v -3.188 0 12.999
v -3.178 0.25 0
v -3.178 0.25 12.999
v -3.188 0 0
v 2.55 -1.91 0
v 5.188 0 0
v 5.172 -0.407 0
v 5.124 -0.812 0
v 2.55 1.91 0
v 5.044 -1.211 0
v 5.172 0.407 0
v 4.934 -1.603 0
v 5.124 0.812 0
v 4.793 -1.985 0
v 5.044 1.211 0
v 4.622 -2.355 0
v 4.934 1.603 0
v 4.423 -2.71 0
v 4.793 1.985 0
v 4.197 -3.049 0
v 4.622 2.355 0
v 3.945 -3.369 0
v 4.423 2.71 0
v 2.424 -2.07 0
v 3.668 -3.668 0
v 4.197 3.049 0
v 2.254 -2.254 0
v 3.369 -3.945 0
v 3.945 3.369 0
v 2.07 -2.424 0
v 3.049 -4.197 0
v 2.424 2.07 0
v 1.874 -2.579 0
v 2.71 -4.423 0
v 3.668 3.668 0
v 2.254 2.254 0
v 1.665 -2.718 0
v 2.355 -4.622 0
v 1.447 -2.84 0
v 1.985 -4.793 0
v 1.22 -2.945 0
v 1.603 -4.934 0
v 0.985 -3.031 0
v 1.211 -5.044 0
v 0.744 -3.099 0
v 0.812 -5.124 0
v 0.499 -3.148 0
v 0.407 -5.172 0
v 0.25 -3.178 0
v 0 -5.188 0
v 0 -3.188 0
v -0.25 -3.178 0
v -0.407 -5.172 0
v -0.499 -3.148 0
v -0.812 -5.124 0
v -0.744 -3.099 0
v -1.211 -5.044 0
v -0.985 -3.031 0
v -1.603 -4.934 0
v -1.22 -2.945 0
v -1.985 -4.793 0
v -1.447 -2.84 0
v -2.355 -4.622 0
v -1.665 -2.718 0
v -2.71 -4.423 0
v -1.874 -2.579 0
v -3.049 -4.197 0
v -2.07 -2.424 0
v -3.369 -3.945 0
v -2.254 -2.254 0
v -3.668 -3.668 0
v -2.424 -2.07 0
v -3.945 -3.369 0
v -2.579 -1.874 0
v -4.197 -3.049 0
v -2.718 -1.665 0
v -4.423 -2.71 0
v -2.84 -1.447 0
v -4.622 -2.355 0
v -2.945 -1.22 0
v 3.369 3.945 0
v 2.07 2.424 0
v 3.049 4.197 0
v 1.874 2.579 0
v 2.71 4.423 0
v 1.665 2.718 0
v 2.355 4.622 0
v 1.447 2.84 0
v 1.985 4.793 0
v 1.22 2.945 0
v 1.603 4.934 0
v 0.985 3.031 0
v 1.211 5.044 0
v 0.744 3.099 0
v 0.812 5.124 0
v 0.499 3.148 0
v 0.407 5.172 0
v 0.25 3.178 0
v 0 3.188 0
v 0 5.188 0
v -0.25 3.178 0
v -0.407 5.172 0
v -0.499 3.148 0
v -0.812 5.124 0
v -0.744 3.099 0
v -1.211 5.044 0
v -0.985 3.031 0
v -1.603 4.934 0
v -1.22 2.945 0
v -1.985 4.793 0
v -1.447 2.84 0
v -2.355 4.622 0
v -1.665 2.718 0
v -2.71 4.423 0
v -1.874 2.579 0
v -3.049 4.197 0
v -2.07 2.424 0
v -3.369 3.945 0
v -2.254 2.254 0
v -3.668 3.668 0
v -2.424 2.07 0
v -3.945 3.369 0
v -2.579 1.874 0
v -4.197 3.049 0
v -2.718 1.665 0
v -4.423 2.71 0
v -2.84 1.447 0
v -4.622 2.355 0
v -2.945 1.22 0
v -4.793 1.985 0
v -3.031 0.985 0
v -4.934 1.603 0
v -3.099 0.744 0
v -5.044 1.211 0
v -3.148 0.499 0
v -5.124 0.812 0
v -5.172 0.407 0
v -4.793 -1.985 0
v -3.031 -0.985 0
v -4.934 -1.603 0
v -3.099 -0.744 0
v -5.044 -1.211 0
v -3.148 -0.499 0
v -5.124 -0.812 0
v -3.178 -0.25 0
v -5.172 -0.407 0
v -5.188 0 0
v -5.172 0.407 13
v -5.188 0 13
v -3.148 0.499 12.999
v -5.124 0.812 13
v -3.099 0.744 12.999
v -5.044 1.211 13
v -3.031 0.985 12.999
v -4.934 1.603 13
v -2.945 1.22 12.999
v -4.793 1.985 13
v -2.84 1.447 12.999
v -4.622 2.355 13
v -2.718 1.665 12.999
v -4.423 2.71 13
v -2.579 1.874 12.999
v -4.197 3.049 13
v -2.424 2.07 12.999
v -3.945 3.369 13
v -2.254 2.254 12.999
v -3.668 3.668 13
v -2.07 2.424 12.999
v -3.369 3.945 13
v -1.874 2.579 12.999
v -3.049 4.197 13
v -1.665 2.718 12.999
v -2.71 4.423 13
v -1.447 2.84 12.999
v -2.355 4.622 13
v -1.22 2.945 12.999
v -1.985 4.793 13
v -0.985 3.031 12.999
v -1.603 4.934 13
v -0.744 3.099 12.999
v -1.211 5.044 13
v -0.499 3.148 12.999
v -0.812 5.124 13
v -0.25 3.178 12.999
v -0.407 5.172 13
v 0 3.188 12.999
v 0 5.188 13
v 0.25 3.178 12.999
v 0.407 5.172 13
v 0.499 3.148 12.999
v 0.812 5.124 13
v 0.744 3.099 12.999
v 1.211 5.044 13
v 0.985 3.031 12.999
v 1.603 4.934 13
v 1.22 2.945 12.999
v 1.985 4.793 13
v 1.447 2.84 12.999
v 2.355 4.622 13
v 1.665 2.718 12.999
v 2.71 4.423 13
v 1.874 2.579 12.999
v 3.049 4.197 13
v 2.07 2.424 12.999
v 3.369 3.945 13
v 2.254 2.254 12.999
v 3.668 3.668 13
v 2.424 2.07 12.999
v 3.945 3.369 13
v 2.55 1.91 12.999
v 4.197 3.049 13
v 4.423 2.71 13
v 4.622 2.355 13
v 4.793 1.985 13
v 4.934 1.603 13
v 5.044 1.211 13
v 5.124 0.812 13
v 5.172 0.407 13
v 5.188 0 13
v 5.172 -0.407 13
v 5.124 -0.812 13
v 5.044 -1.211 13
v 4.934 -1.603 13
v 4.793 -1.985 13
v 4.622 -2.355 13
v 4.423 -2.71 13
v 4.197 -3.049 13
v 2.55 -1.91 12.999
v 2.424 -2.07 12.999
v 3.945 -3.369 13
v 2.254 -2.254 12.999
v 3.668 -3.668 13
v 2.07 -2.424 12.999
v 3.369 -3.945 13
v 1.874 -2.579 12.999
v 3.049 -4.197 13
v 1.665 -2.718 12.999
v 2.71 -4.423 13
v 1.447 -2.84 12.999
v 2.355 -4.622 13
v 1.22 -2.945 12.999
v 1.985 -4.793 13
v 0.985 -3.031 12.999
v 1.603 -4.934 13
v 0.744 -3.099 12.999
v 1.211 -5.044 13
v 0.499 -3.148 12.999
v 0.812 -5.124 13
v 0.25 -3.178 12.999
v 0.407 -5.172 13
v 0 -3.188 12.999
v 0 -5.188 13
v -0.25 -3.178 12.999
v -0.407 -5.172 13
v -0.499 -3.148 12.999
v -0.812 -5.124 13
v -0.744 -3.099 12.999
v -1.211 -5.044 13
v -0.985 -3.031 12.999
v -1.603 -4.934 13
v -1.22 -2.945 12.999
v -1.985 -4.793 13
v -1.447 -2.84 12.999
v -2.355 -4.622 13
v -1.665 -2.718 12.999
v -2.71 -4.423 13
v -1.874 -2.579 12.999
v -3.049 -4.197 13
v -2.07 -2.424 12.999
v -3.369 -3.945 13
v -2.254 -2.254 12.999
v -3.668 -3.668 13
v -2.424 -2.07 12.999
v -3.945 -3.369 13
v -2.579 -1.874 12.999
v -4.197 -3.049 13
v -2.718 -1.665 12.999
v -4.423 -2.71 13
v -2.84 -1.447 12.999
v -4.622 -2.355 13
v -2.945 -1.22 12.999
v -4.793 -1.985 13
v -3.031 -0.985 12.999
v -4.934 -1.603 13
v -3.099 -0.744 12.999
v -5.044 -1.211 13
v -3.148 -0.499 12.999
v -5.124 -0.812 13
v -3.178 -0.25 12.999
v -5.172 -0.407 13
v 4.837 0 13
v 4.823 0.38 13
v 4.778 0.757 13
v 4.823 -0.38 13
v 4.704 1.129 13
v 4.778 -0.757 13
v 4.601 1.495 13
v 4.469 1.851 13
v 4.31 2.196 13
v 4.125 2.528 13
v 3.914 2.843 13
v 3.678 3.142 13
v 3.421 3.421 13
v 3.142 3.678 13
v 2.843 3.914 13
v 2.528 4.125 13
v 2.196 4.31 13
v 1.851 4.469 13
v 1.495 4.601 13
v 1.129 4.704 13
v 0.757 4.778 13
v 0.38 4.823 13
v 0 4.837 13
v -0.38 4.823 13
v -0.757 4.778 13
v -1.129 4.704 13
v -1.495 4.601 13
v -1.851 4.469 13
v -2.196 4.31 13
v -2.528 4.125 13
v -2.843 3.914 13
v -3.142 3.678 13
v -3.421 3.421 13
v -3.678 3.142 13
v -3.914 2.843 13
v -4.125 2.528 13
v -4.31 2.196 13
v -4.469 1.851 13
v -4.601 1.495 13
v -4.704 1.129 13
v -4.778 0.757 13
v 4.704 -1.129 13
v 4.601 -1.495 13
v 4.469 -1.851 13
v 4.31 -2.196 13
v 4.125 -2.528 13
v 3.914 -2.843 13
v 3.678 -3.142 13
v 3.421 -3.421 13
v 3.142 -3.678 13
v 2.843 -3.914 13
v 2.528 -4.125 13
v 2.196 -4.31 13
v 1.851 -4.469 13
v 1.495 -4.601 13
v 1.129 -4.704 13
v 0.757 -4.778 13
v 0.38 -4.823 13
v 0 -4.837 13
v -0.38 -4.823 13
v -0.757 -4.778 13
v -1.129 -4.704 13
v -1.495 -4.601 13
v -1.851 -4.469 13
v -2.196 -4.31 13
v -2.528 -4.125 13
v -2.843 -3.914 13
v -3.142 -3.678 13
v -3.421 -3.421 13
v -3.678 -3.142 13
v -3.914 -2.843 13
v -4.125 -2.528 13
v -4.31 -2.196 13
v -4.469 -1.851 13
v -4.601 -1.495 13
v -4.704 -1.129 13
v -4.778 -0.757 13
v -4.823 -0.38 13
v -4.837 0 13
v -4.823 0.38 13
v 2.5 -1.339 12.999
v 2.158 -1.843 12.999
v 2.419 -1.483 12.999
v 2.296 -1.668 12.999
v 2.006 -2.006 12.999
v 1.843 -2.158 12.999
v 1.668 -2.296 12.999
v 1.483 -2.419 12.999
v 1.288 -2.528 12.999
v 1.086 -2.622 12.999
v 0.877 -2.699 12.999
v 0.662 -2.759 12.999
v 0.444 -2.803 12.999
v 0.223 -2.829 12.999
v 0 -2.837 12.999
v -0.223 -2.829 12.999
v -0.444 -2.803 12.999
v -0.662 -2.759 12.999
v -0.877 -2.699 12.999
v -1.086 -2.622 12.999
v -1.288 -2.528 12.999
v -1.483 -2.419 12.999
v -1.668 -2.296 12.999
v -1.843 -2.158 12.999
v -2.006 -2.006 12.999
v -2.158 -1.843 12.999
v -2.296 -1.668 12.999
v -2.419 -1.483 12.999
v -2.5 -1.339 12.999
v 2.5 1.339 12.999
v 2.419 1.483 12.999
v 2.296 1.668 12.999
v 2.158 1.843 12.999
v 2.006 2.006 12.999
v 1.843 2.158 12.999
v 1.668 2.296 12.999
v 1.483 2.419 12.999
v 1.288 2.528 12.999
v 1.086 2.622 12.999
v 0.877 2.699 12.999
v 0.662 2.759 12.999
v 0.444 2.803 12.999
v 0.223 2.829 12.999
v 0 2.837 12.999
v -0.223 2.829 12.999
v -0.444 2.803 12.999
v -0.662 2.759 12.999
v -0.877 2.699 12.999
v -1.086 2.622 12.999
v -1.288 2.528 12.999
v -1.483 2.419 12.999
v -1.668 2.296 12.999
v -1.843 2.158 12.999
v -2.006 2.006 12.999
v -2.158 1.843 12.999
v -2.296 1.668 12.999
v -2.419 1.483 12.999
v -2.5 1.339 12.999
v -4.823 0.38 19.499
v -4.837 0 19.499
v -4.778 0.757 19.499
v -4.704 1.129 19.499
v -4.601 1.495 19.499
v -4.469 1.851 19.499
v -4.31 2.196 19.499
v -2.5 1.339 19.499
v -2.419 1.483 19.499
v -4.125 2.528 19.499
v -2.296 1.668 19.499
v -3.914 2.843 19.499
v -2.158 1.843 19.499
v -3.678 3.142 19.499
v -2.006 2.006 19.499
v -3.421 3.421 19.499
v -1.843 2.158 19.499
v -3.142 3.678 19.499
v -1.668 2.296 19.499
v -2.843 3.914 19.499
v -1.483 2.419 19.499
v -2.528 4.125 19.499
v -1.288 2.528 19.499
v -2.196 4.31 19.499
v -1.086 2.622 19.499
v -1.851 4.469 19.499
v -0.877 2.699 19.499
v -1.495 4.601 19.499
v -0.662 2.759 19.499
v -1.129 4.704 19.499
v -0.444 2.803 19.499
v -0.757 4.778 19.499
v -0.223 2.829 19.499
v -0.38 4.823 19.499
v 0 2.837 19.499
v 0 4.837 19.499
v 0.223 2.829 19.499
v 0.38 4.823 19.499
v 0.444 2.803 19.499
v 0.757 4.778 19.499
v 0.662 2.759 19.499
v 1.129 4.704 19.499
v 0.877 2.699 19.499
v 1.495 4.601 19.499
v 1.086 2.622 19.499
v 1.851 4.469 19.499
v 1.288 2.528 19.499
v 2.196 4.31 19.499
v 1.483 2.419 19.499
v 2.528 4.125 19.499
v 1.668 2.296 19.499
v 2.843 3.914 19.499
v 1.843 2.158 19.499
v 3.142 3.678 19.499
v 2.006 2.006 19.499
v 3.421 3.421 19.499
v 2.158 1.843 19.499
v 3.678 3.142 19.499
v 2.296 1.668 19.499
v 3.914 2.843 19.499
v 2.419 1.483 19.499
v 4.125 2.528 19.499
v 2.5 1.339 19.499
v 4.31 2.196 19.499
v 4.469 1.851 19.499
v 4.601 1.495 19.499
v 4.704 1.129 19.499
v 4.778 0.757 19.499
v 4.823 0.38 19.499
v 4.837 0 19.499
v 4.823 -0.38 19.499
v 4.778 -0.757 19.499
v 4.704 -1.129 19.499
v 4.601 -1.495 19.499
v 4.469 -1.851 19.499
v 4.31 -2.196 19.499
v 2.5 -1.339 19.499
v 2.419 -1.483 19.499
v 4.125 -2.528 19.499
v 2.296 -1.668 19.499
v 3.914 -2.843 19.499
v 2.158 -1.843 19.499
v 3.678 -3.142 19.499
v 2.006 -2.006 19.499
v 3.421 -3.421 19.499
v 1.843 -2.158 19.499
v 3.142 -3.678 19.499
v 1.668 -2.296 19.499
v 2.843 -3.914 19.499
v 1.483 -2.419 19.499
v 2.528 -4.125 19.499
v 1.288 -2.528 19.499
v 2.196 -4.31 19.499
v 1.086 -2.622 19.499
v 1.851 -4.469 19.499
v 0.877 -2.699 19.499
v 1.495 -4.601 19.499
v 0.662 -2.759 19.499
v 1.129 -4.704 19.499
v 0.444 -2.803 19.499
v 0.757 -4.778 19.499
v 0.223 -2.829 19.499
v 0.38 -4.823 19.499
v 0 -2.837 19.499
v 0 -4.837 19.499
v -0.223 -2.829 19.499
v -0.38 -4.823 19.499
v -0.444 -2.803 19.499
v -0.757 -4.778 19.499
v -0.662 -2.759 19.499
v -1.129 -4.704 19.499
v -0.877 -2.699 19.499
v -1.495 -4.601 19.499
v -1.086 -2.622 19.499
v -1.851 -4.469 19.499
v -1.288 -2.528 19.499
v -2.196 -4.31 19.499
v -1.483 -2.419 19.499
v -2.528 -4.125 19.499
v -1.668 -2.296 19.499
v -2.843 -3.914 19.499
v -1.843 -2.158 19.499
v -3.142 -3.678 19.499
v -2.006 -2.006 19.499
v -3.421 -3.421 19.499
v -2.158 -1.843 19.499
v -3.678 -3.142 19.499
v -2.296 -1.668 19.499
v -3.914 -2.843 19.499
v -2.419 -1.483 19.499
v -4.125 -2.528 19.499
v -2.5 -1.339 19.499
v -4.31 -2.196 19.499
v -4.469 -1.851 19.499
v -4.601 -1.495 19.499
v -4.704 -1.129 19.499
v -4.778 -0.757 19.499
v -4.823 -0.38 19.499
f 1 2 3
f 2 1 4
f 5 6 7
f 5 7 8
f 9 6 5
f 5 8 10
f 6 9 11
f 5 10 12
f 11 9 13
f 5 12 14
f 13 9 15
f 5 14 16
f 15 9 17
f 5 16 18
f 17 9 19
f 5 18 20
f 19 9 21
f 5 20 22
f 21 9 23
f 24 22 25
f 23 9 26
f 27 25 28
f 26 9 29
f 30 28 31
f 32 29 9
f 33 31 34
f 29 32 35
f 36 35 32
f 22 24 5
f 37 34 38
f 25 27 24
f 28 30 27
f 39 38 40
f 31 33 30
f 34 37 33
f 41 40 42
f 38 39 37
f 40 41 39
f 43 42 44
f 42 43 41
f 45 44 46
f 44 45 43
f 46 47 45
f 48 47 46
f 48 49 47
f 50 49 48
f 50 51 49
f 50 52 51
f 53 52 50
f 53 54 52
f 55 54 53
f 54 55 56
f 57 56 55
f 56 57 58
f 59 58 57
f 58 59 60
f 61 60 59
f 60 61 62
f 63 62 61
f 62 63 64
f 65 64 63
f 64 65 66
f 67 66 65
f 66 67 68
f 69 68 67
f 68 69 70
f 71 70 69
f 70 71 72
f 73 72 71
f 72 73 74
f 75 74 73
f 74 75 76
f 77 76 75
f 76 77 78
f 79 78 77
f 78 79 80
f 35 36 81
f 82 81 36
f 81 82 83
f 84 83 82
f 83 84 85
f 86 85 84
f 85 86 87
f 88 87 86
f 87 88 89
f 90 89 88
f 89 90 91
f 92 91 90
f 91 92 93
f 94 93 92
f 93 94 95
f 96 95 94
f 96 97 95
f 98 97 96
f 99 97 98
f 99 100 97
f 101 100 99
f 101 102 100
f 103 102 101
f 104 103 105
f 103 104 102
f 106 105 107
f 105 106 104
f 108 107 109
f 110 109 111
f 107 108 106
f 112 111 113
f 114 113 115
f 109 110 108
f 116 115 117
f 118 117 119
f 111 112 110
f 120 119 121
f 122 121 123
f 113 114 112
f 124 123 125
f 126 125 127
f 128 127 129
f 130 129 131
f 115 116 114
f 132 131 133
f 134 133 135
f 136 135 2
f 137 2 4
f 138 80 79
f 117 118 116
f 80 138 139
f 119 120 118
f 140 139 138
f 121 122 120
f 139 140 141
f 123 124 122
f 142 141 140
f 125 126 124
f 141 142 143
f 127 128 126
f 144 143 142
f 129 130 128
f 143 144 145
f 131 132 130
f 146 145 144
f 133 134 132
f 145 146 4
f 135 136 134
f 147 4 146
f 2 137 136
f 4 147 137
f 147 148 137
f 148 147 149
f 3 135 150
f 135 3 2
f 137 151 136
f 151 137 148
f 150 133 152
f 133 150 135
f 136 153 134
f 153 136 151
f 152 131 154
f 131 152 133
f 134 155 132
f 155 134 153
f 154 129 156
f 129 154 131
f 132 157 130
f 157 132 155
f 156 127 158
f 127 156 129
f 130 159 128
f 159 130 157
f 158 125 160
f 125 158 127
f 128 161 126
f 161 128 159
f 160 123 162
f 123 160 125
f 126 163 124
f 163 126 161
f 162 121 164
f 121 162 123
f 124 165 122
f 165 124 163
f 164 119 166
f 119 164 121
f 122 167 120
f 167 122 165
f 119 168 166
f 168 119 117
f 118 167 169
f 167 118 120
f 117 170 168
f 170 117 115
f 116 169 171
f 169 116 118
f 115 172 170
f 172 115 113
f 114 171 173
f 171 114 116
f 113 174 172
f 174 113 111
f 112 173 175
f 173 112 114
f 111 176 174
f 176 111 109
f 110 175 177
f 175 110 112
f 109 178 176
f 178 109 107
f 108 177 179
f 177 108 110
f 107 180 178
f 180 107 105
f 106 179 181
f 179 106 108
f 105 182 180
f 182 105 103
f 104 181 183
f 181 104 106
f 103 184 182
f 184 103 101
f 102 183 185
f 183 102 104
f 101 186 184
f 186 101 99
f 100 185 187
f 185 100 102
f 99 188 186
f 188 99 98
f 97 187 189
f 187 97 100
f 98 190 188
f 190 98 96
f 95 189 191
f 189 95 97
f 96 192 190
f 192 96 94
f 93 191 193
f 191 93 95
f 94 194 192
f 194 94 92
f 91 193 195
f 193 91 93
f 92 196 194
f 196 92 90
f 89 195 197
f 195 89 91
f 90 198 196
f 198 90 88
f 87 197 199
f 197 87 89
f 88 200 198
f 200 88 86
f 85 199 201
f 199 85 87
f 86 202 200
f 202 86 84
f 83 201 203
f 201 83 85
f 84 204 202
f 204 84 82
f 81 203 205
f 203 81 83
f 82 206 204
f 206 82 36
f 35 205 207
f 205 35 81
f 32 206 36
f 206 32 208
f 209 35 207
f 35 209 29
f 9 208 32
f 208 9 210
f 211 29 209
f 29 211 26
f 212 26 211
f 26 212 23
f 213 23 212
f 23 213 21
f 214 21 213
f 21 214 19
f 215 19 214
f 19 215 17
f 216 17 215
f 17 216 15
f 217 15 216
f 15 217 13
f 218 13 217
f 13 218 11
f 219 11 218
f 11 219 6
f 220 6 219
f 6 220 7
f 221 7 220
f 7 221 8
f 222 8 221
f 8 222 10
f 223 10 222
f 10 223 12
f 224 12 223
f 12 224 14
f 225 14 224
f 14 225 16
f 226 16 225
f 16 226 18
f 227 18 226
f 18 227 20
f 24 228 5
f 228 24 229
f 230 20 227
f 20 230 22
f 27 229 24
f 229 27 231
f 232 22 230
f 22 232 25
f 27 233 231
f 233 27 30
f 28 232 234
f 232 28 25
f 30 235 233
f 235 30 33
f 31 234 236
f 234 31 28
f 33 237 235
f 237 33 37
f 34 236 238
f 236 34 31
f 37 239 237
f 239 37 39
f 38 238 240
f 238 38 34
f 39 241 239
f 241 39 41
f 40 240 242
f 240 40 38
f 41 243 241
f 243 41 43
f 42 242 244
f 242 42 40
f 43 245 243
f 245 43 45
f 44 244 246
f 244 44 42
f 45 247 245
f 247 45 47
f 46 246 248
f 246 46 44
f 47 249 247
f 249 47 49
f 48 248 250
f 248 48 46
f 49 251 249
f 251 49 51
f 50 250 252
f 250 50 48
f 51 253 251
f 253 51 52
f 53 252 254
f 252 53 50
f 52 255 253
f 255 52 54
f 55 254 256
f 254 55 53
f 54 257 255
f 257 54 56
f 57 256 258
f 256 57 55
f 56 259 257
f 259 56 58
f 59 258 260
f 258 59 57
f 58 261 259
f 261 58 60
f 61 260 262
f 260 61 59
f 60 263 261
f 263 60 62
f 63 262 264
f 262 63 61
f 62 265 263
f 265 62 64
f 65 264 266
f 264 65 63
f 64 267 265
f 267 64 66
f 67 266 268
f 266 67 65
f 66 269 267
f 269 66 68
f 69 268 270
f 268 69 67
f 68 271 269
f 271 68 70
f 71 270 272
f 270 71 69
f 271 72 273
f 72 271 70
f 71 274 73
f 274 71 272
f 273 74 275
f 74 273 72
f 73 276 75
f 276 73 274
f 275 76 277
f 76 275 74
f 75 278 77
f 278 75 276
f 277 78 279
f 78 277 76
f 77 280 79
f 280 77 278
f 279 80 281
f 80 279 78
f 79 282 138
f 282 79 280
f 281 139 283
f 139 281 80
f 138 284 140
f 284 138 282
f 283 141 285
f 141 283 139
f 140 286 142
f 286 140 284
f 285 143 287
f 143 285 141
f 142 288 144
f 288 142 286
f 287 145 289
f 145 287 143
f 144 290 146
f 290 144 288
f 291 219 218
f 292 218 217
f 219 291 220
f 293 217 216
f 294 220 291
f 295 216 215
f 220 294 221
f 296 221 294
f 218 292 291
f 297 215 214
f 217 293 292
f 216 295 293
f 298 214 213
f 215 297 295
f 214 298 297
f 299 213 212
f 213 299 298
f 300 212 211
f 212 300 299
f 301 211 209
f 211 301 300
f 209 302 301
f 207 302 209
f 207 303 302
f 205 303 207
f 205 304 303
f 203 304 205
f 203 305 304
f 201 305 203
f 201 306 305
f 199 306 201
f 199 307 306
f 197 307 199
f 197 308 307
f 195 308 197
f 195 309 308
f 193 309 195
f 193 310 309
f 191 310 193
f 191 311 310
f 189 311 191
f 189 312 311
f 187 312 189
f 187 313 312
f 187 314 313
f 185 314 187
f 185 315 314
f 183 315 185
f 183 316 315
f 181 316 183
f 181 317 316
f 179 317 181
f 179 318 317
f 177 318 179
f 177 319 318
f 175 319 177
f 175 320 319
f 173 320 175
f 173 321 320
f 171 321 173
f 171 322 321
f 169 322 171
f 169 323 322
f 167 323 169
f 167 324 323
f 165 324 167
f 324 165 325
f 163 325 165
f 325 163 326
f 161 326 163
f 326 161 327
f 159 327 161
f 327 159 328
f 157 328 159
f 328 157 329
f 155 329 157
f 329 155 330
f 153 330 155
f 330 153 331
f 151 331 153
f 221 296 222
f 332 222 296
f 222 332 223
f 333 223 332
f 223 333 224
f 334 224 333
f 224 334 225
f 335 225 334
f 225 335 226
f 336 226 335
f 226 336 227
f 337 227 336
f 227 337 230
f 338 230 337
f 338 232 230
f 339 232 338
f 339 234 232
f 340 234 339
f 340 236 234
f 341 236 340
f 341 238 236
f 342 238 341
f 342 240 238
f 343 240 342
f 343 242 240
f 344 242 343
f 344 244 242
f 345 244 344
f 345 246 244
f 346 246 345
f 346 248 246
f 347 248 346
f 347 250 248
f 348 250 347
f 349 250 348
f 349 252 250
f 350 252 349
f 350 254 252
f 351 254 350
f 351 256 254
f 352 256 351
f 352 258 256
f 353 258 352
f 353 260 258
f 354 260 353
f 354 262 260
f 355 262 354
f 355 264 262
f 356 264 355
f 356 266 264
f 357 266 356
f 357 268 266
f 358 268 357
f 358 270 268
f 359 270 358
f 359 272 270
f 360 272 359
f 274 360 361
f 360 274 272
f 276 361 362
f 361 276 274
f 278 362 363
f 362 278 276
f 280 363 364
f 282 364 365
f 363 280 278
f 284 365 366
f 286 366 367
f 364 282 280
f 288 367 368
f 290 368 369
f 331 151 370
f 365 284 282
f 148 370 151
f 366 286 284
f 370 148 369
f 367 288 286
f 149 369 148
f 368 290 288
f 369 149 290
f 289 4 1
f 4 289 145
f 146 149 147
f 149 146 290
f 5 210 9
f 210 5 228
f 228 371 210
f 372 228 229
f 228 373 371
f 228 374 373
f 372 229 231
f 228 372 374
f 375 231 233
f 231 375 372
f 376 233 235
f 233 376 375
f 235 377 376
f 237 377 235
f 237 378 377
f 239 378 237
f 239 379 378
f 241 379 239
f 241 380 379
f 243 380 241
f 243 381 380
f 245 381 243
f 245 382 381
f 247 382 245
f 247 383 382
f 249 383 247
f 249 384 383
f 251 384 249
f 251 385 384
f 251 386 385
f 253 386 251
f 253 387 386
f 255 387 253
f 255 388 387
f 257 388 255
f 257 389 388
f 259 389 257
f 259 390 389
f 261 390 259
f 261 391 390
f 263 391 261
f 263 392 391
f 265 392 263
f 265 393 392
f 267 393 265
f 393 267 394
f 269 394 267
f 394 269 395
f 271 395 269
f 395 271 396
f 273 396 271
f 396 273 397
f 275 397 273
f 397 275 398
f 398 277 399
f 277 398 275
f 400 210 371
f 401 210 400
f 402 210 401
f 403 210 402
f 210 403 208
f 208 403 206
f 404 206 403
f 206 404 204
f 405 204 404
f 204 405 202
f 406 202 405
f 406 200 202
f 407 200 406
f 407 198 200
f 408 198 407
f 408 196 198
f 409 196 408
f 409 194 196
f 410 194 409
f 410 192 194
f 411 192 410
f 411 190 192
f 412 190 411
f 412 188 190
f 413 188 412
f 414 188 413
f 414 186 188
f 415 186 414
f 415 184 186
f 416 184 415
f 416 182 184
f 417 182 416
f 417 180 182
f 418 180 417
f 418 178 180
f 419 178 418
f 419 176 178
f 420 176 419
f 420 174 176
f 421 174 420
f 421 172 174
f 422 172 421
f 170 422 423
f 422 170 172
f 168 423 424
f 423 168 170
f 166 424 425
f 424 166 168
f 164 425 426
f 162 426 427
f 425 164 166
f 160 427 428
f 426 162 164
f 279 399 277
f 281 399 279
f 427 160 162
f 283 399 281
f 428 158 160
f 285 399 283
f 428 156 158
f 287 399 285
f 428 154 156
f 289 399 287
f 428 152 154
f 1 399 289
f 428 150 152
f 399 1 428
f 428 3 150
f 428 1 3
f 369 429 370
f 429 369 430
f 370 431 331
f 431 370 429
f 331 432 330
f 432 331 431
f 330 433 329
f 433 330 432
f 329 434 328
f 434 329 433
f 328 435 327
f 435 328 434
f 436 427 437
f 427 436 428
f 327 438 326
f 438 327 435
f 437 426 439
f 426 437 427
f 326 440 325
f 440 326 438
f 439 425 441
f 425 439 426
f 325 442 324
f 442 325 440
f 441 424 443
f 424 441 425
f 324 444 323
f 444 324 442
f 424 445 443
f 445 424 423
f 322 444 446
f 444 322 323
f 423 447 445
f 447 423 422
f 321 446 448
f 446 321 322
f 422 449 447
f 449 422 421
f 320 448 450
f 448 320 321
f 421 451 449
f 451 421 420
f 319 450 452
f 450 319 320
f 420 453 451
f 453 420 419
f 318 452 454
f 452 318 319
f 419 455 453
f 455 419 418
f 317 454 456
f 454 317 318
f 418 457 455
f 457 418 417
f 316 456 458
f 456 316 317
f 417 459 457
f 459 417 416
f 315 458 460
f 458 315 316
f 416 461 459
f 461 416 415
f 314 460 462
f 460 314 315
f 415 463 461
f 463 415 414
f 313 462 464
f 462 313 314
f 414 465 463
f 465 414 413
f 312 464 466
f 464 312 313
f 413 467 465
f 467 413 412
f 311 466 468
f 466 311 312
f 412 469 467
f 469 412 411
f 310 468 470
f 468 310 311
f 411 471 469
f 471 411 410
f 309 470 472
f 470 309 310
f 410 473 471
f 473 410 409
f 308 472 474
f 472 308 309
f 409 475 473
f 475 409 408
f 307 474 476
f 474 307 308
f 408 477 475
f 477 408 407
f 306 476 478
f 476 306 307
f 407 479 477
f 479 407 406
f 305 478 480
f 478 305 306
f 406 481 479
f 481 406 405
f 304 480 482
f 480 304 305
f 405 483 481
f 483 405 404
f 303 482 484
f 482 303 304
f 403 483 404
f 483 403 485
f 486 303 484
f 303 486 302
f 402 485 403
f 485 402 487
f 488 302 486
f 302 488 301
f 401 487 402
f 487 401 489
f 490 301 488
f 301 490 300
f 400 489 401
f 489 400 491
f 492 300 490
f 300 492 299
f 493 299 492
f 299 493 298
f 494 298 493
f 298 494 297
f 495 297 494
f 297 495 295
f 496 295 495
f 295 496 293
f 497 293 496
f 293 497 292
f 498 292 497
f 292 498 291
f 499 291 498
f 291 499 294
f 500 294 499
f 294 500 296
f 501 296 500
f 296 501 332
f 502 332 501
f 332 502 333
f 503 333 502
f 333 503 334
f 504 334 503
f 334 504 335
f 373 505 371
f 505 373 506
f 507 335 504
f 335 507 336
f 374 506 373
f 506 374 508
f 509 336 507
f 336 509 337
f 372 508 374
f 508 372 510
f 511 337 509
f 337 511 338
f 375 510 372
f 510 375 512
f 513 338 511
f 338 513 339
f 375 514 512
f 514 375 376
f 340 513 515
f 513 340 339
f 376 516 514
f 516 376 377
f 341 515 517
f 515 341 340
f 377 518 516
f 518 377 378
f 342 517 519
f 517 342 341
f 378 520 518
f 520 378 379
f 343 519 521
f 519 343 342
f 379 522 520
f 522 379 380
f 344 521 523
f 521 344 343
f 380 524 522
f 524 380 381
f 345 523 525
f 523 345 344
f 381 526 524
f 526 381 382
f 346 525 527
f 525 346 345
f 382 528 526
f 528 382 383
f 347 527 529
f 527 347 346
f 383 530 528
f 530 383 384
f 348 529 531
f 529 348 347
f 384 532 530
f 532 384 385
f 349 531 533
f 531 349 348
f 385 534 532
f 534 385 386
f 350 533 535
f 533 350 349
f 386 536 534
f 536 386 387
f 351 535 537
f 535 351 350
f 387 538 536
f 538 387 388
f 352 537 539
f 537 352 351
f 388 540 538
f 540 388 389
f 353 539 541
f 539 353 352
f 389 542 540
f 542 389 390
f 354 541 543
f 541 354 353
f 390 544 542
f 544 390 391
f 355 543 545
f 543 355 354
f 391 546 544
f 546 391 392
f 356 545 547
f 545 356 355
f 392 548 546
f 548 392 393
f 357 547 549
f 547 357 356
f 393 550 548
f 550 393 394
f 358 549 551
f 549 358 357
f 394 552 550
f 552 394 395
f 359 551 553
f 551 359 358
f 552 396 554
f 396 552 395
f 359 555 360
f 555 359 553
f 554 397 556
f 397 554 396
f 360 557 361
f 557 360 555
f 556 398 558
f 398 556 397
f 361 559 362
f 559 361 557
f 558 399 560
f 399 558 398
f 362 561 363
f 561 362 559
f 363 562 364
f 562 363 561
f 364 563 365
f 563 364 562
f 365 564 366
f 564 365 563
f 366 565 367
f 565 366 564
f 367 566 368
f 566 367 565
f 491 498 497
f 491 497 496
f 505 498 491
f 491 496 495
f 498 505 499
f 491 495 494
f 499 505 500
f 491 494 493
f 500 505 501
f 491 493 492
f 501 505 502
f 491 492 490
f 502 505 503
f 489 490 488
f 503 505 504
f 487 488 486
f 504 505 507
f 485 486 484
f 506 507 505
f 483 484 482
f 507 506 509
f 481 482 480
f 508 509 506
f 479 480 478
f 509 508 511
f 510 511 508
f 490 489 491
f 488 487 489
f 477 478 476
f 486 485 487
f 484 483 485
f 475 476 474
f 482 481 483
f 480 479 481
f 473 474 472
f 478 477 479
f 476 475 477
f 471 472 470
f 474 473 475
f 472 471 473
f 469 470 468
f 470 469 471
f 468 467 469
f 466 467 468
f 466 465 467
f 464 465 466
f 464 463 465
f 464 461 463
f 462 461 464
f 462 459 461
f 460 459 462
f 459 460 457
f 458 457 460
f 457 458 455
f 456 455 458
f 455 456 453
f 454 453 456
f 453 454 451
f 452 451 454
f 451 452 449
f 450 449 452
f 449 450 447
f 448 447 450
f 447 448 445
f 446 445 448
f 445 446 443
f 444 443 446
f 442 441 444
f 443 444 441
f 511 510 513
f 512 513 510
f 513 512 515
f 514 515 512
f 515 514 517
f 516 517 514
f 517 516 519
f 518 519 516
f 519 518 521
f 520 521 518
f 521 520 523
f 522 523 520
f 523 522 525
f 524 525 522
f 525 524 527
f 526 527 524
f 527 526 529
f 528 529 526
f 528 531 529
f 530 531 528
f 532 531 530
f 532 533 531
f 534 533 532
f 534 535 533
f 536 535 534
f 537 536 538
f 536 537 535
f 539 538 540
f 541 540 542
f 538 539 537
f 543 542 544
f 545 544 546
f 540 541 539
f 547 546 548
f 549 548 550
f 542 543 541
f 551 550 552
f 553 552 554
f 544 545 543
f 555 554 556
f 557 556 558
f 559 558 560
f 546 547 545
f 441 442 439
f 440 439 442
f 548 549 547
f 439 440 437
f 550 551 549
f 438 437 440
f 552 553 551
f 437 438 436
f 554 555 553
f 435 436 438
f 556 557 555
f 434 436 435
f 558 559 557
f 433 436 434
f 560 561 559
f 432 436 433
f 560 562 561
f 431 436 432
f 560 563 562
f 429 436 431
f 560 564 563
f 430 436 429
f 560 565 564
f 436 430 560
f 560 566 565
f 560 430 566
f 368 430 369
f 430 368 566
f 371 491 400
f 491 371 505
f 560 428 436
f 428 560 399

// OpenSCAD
global_fn = 80;         // how smooth should curves be       

d_coupler_shaft = 6;         // encoder shafe daimater.                  measured
r_coupler_shaft = d_coupler_shaft/2;
m_coupler_shaft_extra = .375;     // extra space for shaft hole.              estimated
m_coupler_side_extra_gap = 1.1;
to_flat_bit = 4.45;     // distance from edge to flat bit on shaft  measured
coupler_outer_wall = 2; // amount of meaterial around the shaft. 
epsilon=0.001;

d_motor_shaft = 5.3;
d_motor_shaft_extra = .375;
d_motor_coupler_inner_wall = d_motor_shaft + d_motor_shaft_extra;
r_motor_coupler_inner_wall = d_motor_coupler_inner_wall / 2;
z_motor_coupler_height = 6.5;
x_motor_coupler_flat_edge = 2.5;

z_shaft_height = 13;    // measured

d_coupler_inner_wall = d_coupler_shaft + m_coupler_shaft_extra;
r_coupler_inner_wall = d_coupler_inner_wall / 2;
x_coupler_flat_edge = -r_coupler_shaft + to_flat_bit + m_coupler_side_extra_gap;



module ring( depth, inner_diam, wall ) {
    rotate_extrude($fn=global_fn) polygon( points=[
        [inner_diam/2, 0 ],
        [inner_diam/2, depth],
        [inner_diam/2+wall, depth ],
        [inner_diam/2+wall, 0 ]]);
}

module encoder_coupler()
{
    ring( z_shaft_height, d_coupler_inner_wall, coupler_outer_wall );
    linear_extrude( height = z_shaft_height ) polygon( points=[
        [ x_coupler_flat_edge, -r_coupler_inner_wall ],
        [ x_coupler_flat_edge,  r_coupler_inner_wall ],
        [ r_coupler_inner_wall,                 r_coupler_inner_wall ],
        [ r_coupler_inner_wall,                -r_coupler_inner_wall ]    
    ]);
}

module motor_coupler()
{
    ring( z_motor_coupler_height, d_motor_coupler_inner_wall, coupler_outer_wall );    

    linear_extrude( height = z_motor_coupler_height ) polygon( points=[
        [ x_motor_coupler_flat_edge, -r_motor_coupler_inner_wall ],
        [ x_motor_coupler_flat_edge,  r_motor_coupler_inner_wall ],
        [ r_motor_coupler_inner_wall,                 r_coupler_inner_wall ],
        [ r_motor_coupler_inner_wall,                -r_coupler_inner_wall ]    
    ]);    
    linear_extrude( height = z_motor_coupler_height ) polygon( points=[
        [ -x_motor_coupler_flat_edge, -r_motor_coupler_inner_wall ],
        [ -x_motor_coupler_flat_edge,  r_motor_coupler_inner_wall ],
        [ -r_motor_coupler_inner_wall,                 r_coupler_inner_wall ],
        [ -r_motor_coupler_inner_wall,                -r_coupler_inner_wall ]    
    ]);    
    
}



encoder_coupler();

translate([0,0,z_shaft_height-epsilon])
motor_coupler();
